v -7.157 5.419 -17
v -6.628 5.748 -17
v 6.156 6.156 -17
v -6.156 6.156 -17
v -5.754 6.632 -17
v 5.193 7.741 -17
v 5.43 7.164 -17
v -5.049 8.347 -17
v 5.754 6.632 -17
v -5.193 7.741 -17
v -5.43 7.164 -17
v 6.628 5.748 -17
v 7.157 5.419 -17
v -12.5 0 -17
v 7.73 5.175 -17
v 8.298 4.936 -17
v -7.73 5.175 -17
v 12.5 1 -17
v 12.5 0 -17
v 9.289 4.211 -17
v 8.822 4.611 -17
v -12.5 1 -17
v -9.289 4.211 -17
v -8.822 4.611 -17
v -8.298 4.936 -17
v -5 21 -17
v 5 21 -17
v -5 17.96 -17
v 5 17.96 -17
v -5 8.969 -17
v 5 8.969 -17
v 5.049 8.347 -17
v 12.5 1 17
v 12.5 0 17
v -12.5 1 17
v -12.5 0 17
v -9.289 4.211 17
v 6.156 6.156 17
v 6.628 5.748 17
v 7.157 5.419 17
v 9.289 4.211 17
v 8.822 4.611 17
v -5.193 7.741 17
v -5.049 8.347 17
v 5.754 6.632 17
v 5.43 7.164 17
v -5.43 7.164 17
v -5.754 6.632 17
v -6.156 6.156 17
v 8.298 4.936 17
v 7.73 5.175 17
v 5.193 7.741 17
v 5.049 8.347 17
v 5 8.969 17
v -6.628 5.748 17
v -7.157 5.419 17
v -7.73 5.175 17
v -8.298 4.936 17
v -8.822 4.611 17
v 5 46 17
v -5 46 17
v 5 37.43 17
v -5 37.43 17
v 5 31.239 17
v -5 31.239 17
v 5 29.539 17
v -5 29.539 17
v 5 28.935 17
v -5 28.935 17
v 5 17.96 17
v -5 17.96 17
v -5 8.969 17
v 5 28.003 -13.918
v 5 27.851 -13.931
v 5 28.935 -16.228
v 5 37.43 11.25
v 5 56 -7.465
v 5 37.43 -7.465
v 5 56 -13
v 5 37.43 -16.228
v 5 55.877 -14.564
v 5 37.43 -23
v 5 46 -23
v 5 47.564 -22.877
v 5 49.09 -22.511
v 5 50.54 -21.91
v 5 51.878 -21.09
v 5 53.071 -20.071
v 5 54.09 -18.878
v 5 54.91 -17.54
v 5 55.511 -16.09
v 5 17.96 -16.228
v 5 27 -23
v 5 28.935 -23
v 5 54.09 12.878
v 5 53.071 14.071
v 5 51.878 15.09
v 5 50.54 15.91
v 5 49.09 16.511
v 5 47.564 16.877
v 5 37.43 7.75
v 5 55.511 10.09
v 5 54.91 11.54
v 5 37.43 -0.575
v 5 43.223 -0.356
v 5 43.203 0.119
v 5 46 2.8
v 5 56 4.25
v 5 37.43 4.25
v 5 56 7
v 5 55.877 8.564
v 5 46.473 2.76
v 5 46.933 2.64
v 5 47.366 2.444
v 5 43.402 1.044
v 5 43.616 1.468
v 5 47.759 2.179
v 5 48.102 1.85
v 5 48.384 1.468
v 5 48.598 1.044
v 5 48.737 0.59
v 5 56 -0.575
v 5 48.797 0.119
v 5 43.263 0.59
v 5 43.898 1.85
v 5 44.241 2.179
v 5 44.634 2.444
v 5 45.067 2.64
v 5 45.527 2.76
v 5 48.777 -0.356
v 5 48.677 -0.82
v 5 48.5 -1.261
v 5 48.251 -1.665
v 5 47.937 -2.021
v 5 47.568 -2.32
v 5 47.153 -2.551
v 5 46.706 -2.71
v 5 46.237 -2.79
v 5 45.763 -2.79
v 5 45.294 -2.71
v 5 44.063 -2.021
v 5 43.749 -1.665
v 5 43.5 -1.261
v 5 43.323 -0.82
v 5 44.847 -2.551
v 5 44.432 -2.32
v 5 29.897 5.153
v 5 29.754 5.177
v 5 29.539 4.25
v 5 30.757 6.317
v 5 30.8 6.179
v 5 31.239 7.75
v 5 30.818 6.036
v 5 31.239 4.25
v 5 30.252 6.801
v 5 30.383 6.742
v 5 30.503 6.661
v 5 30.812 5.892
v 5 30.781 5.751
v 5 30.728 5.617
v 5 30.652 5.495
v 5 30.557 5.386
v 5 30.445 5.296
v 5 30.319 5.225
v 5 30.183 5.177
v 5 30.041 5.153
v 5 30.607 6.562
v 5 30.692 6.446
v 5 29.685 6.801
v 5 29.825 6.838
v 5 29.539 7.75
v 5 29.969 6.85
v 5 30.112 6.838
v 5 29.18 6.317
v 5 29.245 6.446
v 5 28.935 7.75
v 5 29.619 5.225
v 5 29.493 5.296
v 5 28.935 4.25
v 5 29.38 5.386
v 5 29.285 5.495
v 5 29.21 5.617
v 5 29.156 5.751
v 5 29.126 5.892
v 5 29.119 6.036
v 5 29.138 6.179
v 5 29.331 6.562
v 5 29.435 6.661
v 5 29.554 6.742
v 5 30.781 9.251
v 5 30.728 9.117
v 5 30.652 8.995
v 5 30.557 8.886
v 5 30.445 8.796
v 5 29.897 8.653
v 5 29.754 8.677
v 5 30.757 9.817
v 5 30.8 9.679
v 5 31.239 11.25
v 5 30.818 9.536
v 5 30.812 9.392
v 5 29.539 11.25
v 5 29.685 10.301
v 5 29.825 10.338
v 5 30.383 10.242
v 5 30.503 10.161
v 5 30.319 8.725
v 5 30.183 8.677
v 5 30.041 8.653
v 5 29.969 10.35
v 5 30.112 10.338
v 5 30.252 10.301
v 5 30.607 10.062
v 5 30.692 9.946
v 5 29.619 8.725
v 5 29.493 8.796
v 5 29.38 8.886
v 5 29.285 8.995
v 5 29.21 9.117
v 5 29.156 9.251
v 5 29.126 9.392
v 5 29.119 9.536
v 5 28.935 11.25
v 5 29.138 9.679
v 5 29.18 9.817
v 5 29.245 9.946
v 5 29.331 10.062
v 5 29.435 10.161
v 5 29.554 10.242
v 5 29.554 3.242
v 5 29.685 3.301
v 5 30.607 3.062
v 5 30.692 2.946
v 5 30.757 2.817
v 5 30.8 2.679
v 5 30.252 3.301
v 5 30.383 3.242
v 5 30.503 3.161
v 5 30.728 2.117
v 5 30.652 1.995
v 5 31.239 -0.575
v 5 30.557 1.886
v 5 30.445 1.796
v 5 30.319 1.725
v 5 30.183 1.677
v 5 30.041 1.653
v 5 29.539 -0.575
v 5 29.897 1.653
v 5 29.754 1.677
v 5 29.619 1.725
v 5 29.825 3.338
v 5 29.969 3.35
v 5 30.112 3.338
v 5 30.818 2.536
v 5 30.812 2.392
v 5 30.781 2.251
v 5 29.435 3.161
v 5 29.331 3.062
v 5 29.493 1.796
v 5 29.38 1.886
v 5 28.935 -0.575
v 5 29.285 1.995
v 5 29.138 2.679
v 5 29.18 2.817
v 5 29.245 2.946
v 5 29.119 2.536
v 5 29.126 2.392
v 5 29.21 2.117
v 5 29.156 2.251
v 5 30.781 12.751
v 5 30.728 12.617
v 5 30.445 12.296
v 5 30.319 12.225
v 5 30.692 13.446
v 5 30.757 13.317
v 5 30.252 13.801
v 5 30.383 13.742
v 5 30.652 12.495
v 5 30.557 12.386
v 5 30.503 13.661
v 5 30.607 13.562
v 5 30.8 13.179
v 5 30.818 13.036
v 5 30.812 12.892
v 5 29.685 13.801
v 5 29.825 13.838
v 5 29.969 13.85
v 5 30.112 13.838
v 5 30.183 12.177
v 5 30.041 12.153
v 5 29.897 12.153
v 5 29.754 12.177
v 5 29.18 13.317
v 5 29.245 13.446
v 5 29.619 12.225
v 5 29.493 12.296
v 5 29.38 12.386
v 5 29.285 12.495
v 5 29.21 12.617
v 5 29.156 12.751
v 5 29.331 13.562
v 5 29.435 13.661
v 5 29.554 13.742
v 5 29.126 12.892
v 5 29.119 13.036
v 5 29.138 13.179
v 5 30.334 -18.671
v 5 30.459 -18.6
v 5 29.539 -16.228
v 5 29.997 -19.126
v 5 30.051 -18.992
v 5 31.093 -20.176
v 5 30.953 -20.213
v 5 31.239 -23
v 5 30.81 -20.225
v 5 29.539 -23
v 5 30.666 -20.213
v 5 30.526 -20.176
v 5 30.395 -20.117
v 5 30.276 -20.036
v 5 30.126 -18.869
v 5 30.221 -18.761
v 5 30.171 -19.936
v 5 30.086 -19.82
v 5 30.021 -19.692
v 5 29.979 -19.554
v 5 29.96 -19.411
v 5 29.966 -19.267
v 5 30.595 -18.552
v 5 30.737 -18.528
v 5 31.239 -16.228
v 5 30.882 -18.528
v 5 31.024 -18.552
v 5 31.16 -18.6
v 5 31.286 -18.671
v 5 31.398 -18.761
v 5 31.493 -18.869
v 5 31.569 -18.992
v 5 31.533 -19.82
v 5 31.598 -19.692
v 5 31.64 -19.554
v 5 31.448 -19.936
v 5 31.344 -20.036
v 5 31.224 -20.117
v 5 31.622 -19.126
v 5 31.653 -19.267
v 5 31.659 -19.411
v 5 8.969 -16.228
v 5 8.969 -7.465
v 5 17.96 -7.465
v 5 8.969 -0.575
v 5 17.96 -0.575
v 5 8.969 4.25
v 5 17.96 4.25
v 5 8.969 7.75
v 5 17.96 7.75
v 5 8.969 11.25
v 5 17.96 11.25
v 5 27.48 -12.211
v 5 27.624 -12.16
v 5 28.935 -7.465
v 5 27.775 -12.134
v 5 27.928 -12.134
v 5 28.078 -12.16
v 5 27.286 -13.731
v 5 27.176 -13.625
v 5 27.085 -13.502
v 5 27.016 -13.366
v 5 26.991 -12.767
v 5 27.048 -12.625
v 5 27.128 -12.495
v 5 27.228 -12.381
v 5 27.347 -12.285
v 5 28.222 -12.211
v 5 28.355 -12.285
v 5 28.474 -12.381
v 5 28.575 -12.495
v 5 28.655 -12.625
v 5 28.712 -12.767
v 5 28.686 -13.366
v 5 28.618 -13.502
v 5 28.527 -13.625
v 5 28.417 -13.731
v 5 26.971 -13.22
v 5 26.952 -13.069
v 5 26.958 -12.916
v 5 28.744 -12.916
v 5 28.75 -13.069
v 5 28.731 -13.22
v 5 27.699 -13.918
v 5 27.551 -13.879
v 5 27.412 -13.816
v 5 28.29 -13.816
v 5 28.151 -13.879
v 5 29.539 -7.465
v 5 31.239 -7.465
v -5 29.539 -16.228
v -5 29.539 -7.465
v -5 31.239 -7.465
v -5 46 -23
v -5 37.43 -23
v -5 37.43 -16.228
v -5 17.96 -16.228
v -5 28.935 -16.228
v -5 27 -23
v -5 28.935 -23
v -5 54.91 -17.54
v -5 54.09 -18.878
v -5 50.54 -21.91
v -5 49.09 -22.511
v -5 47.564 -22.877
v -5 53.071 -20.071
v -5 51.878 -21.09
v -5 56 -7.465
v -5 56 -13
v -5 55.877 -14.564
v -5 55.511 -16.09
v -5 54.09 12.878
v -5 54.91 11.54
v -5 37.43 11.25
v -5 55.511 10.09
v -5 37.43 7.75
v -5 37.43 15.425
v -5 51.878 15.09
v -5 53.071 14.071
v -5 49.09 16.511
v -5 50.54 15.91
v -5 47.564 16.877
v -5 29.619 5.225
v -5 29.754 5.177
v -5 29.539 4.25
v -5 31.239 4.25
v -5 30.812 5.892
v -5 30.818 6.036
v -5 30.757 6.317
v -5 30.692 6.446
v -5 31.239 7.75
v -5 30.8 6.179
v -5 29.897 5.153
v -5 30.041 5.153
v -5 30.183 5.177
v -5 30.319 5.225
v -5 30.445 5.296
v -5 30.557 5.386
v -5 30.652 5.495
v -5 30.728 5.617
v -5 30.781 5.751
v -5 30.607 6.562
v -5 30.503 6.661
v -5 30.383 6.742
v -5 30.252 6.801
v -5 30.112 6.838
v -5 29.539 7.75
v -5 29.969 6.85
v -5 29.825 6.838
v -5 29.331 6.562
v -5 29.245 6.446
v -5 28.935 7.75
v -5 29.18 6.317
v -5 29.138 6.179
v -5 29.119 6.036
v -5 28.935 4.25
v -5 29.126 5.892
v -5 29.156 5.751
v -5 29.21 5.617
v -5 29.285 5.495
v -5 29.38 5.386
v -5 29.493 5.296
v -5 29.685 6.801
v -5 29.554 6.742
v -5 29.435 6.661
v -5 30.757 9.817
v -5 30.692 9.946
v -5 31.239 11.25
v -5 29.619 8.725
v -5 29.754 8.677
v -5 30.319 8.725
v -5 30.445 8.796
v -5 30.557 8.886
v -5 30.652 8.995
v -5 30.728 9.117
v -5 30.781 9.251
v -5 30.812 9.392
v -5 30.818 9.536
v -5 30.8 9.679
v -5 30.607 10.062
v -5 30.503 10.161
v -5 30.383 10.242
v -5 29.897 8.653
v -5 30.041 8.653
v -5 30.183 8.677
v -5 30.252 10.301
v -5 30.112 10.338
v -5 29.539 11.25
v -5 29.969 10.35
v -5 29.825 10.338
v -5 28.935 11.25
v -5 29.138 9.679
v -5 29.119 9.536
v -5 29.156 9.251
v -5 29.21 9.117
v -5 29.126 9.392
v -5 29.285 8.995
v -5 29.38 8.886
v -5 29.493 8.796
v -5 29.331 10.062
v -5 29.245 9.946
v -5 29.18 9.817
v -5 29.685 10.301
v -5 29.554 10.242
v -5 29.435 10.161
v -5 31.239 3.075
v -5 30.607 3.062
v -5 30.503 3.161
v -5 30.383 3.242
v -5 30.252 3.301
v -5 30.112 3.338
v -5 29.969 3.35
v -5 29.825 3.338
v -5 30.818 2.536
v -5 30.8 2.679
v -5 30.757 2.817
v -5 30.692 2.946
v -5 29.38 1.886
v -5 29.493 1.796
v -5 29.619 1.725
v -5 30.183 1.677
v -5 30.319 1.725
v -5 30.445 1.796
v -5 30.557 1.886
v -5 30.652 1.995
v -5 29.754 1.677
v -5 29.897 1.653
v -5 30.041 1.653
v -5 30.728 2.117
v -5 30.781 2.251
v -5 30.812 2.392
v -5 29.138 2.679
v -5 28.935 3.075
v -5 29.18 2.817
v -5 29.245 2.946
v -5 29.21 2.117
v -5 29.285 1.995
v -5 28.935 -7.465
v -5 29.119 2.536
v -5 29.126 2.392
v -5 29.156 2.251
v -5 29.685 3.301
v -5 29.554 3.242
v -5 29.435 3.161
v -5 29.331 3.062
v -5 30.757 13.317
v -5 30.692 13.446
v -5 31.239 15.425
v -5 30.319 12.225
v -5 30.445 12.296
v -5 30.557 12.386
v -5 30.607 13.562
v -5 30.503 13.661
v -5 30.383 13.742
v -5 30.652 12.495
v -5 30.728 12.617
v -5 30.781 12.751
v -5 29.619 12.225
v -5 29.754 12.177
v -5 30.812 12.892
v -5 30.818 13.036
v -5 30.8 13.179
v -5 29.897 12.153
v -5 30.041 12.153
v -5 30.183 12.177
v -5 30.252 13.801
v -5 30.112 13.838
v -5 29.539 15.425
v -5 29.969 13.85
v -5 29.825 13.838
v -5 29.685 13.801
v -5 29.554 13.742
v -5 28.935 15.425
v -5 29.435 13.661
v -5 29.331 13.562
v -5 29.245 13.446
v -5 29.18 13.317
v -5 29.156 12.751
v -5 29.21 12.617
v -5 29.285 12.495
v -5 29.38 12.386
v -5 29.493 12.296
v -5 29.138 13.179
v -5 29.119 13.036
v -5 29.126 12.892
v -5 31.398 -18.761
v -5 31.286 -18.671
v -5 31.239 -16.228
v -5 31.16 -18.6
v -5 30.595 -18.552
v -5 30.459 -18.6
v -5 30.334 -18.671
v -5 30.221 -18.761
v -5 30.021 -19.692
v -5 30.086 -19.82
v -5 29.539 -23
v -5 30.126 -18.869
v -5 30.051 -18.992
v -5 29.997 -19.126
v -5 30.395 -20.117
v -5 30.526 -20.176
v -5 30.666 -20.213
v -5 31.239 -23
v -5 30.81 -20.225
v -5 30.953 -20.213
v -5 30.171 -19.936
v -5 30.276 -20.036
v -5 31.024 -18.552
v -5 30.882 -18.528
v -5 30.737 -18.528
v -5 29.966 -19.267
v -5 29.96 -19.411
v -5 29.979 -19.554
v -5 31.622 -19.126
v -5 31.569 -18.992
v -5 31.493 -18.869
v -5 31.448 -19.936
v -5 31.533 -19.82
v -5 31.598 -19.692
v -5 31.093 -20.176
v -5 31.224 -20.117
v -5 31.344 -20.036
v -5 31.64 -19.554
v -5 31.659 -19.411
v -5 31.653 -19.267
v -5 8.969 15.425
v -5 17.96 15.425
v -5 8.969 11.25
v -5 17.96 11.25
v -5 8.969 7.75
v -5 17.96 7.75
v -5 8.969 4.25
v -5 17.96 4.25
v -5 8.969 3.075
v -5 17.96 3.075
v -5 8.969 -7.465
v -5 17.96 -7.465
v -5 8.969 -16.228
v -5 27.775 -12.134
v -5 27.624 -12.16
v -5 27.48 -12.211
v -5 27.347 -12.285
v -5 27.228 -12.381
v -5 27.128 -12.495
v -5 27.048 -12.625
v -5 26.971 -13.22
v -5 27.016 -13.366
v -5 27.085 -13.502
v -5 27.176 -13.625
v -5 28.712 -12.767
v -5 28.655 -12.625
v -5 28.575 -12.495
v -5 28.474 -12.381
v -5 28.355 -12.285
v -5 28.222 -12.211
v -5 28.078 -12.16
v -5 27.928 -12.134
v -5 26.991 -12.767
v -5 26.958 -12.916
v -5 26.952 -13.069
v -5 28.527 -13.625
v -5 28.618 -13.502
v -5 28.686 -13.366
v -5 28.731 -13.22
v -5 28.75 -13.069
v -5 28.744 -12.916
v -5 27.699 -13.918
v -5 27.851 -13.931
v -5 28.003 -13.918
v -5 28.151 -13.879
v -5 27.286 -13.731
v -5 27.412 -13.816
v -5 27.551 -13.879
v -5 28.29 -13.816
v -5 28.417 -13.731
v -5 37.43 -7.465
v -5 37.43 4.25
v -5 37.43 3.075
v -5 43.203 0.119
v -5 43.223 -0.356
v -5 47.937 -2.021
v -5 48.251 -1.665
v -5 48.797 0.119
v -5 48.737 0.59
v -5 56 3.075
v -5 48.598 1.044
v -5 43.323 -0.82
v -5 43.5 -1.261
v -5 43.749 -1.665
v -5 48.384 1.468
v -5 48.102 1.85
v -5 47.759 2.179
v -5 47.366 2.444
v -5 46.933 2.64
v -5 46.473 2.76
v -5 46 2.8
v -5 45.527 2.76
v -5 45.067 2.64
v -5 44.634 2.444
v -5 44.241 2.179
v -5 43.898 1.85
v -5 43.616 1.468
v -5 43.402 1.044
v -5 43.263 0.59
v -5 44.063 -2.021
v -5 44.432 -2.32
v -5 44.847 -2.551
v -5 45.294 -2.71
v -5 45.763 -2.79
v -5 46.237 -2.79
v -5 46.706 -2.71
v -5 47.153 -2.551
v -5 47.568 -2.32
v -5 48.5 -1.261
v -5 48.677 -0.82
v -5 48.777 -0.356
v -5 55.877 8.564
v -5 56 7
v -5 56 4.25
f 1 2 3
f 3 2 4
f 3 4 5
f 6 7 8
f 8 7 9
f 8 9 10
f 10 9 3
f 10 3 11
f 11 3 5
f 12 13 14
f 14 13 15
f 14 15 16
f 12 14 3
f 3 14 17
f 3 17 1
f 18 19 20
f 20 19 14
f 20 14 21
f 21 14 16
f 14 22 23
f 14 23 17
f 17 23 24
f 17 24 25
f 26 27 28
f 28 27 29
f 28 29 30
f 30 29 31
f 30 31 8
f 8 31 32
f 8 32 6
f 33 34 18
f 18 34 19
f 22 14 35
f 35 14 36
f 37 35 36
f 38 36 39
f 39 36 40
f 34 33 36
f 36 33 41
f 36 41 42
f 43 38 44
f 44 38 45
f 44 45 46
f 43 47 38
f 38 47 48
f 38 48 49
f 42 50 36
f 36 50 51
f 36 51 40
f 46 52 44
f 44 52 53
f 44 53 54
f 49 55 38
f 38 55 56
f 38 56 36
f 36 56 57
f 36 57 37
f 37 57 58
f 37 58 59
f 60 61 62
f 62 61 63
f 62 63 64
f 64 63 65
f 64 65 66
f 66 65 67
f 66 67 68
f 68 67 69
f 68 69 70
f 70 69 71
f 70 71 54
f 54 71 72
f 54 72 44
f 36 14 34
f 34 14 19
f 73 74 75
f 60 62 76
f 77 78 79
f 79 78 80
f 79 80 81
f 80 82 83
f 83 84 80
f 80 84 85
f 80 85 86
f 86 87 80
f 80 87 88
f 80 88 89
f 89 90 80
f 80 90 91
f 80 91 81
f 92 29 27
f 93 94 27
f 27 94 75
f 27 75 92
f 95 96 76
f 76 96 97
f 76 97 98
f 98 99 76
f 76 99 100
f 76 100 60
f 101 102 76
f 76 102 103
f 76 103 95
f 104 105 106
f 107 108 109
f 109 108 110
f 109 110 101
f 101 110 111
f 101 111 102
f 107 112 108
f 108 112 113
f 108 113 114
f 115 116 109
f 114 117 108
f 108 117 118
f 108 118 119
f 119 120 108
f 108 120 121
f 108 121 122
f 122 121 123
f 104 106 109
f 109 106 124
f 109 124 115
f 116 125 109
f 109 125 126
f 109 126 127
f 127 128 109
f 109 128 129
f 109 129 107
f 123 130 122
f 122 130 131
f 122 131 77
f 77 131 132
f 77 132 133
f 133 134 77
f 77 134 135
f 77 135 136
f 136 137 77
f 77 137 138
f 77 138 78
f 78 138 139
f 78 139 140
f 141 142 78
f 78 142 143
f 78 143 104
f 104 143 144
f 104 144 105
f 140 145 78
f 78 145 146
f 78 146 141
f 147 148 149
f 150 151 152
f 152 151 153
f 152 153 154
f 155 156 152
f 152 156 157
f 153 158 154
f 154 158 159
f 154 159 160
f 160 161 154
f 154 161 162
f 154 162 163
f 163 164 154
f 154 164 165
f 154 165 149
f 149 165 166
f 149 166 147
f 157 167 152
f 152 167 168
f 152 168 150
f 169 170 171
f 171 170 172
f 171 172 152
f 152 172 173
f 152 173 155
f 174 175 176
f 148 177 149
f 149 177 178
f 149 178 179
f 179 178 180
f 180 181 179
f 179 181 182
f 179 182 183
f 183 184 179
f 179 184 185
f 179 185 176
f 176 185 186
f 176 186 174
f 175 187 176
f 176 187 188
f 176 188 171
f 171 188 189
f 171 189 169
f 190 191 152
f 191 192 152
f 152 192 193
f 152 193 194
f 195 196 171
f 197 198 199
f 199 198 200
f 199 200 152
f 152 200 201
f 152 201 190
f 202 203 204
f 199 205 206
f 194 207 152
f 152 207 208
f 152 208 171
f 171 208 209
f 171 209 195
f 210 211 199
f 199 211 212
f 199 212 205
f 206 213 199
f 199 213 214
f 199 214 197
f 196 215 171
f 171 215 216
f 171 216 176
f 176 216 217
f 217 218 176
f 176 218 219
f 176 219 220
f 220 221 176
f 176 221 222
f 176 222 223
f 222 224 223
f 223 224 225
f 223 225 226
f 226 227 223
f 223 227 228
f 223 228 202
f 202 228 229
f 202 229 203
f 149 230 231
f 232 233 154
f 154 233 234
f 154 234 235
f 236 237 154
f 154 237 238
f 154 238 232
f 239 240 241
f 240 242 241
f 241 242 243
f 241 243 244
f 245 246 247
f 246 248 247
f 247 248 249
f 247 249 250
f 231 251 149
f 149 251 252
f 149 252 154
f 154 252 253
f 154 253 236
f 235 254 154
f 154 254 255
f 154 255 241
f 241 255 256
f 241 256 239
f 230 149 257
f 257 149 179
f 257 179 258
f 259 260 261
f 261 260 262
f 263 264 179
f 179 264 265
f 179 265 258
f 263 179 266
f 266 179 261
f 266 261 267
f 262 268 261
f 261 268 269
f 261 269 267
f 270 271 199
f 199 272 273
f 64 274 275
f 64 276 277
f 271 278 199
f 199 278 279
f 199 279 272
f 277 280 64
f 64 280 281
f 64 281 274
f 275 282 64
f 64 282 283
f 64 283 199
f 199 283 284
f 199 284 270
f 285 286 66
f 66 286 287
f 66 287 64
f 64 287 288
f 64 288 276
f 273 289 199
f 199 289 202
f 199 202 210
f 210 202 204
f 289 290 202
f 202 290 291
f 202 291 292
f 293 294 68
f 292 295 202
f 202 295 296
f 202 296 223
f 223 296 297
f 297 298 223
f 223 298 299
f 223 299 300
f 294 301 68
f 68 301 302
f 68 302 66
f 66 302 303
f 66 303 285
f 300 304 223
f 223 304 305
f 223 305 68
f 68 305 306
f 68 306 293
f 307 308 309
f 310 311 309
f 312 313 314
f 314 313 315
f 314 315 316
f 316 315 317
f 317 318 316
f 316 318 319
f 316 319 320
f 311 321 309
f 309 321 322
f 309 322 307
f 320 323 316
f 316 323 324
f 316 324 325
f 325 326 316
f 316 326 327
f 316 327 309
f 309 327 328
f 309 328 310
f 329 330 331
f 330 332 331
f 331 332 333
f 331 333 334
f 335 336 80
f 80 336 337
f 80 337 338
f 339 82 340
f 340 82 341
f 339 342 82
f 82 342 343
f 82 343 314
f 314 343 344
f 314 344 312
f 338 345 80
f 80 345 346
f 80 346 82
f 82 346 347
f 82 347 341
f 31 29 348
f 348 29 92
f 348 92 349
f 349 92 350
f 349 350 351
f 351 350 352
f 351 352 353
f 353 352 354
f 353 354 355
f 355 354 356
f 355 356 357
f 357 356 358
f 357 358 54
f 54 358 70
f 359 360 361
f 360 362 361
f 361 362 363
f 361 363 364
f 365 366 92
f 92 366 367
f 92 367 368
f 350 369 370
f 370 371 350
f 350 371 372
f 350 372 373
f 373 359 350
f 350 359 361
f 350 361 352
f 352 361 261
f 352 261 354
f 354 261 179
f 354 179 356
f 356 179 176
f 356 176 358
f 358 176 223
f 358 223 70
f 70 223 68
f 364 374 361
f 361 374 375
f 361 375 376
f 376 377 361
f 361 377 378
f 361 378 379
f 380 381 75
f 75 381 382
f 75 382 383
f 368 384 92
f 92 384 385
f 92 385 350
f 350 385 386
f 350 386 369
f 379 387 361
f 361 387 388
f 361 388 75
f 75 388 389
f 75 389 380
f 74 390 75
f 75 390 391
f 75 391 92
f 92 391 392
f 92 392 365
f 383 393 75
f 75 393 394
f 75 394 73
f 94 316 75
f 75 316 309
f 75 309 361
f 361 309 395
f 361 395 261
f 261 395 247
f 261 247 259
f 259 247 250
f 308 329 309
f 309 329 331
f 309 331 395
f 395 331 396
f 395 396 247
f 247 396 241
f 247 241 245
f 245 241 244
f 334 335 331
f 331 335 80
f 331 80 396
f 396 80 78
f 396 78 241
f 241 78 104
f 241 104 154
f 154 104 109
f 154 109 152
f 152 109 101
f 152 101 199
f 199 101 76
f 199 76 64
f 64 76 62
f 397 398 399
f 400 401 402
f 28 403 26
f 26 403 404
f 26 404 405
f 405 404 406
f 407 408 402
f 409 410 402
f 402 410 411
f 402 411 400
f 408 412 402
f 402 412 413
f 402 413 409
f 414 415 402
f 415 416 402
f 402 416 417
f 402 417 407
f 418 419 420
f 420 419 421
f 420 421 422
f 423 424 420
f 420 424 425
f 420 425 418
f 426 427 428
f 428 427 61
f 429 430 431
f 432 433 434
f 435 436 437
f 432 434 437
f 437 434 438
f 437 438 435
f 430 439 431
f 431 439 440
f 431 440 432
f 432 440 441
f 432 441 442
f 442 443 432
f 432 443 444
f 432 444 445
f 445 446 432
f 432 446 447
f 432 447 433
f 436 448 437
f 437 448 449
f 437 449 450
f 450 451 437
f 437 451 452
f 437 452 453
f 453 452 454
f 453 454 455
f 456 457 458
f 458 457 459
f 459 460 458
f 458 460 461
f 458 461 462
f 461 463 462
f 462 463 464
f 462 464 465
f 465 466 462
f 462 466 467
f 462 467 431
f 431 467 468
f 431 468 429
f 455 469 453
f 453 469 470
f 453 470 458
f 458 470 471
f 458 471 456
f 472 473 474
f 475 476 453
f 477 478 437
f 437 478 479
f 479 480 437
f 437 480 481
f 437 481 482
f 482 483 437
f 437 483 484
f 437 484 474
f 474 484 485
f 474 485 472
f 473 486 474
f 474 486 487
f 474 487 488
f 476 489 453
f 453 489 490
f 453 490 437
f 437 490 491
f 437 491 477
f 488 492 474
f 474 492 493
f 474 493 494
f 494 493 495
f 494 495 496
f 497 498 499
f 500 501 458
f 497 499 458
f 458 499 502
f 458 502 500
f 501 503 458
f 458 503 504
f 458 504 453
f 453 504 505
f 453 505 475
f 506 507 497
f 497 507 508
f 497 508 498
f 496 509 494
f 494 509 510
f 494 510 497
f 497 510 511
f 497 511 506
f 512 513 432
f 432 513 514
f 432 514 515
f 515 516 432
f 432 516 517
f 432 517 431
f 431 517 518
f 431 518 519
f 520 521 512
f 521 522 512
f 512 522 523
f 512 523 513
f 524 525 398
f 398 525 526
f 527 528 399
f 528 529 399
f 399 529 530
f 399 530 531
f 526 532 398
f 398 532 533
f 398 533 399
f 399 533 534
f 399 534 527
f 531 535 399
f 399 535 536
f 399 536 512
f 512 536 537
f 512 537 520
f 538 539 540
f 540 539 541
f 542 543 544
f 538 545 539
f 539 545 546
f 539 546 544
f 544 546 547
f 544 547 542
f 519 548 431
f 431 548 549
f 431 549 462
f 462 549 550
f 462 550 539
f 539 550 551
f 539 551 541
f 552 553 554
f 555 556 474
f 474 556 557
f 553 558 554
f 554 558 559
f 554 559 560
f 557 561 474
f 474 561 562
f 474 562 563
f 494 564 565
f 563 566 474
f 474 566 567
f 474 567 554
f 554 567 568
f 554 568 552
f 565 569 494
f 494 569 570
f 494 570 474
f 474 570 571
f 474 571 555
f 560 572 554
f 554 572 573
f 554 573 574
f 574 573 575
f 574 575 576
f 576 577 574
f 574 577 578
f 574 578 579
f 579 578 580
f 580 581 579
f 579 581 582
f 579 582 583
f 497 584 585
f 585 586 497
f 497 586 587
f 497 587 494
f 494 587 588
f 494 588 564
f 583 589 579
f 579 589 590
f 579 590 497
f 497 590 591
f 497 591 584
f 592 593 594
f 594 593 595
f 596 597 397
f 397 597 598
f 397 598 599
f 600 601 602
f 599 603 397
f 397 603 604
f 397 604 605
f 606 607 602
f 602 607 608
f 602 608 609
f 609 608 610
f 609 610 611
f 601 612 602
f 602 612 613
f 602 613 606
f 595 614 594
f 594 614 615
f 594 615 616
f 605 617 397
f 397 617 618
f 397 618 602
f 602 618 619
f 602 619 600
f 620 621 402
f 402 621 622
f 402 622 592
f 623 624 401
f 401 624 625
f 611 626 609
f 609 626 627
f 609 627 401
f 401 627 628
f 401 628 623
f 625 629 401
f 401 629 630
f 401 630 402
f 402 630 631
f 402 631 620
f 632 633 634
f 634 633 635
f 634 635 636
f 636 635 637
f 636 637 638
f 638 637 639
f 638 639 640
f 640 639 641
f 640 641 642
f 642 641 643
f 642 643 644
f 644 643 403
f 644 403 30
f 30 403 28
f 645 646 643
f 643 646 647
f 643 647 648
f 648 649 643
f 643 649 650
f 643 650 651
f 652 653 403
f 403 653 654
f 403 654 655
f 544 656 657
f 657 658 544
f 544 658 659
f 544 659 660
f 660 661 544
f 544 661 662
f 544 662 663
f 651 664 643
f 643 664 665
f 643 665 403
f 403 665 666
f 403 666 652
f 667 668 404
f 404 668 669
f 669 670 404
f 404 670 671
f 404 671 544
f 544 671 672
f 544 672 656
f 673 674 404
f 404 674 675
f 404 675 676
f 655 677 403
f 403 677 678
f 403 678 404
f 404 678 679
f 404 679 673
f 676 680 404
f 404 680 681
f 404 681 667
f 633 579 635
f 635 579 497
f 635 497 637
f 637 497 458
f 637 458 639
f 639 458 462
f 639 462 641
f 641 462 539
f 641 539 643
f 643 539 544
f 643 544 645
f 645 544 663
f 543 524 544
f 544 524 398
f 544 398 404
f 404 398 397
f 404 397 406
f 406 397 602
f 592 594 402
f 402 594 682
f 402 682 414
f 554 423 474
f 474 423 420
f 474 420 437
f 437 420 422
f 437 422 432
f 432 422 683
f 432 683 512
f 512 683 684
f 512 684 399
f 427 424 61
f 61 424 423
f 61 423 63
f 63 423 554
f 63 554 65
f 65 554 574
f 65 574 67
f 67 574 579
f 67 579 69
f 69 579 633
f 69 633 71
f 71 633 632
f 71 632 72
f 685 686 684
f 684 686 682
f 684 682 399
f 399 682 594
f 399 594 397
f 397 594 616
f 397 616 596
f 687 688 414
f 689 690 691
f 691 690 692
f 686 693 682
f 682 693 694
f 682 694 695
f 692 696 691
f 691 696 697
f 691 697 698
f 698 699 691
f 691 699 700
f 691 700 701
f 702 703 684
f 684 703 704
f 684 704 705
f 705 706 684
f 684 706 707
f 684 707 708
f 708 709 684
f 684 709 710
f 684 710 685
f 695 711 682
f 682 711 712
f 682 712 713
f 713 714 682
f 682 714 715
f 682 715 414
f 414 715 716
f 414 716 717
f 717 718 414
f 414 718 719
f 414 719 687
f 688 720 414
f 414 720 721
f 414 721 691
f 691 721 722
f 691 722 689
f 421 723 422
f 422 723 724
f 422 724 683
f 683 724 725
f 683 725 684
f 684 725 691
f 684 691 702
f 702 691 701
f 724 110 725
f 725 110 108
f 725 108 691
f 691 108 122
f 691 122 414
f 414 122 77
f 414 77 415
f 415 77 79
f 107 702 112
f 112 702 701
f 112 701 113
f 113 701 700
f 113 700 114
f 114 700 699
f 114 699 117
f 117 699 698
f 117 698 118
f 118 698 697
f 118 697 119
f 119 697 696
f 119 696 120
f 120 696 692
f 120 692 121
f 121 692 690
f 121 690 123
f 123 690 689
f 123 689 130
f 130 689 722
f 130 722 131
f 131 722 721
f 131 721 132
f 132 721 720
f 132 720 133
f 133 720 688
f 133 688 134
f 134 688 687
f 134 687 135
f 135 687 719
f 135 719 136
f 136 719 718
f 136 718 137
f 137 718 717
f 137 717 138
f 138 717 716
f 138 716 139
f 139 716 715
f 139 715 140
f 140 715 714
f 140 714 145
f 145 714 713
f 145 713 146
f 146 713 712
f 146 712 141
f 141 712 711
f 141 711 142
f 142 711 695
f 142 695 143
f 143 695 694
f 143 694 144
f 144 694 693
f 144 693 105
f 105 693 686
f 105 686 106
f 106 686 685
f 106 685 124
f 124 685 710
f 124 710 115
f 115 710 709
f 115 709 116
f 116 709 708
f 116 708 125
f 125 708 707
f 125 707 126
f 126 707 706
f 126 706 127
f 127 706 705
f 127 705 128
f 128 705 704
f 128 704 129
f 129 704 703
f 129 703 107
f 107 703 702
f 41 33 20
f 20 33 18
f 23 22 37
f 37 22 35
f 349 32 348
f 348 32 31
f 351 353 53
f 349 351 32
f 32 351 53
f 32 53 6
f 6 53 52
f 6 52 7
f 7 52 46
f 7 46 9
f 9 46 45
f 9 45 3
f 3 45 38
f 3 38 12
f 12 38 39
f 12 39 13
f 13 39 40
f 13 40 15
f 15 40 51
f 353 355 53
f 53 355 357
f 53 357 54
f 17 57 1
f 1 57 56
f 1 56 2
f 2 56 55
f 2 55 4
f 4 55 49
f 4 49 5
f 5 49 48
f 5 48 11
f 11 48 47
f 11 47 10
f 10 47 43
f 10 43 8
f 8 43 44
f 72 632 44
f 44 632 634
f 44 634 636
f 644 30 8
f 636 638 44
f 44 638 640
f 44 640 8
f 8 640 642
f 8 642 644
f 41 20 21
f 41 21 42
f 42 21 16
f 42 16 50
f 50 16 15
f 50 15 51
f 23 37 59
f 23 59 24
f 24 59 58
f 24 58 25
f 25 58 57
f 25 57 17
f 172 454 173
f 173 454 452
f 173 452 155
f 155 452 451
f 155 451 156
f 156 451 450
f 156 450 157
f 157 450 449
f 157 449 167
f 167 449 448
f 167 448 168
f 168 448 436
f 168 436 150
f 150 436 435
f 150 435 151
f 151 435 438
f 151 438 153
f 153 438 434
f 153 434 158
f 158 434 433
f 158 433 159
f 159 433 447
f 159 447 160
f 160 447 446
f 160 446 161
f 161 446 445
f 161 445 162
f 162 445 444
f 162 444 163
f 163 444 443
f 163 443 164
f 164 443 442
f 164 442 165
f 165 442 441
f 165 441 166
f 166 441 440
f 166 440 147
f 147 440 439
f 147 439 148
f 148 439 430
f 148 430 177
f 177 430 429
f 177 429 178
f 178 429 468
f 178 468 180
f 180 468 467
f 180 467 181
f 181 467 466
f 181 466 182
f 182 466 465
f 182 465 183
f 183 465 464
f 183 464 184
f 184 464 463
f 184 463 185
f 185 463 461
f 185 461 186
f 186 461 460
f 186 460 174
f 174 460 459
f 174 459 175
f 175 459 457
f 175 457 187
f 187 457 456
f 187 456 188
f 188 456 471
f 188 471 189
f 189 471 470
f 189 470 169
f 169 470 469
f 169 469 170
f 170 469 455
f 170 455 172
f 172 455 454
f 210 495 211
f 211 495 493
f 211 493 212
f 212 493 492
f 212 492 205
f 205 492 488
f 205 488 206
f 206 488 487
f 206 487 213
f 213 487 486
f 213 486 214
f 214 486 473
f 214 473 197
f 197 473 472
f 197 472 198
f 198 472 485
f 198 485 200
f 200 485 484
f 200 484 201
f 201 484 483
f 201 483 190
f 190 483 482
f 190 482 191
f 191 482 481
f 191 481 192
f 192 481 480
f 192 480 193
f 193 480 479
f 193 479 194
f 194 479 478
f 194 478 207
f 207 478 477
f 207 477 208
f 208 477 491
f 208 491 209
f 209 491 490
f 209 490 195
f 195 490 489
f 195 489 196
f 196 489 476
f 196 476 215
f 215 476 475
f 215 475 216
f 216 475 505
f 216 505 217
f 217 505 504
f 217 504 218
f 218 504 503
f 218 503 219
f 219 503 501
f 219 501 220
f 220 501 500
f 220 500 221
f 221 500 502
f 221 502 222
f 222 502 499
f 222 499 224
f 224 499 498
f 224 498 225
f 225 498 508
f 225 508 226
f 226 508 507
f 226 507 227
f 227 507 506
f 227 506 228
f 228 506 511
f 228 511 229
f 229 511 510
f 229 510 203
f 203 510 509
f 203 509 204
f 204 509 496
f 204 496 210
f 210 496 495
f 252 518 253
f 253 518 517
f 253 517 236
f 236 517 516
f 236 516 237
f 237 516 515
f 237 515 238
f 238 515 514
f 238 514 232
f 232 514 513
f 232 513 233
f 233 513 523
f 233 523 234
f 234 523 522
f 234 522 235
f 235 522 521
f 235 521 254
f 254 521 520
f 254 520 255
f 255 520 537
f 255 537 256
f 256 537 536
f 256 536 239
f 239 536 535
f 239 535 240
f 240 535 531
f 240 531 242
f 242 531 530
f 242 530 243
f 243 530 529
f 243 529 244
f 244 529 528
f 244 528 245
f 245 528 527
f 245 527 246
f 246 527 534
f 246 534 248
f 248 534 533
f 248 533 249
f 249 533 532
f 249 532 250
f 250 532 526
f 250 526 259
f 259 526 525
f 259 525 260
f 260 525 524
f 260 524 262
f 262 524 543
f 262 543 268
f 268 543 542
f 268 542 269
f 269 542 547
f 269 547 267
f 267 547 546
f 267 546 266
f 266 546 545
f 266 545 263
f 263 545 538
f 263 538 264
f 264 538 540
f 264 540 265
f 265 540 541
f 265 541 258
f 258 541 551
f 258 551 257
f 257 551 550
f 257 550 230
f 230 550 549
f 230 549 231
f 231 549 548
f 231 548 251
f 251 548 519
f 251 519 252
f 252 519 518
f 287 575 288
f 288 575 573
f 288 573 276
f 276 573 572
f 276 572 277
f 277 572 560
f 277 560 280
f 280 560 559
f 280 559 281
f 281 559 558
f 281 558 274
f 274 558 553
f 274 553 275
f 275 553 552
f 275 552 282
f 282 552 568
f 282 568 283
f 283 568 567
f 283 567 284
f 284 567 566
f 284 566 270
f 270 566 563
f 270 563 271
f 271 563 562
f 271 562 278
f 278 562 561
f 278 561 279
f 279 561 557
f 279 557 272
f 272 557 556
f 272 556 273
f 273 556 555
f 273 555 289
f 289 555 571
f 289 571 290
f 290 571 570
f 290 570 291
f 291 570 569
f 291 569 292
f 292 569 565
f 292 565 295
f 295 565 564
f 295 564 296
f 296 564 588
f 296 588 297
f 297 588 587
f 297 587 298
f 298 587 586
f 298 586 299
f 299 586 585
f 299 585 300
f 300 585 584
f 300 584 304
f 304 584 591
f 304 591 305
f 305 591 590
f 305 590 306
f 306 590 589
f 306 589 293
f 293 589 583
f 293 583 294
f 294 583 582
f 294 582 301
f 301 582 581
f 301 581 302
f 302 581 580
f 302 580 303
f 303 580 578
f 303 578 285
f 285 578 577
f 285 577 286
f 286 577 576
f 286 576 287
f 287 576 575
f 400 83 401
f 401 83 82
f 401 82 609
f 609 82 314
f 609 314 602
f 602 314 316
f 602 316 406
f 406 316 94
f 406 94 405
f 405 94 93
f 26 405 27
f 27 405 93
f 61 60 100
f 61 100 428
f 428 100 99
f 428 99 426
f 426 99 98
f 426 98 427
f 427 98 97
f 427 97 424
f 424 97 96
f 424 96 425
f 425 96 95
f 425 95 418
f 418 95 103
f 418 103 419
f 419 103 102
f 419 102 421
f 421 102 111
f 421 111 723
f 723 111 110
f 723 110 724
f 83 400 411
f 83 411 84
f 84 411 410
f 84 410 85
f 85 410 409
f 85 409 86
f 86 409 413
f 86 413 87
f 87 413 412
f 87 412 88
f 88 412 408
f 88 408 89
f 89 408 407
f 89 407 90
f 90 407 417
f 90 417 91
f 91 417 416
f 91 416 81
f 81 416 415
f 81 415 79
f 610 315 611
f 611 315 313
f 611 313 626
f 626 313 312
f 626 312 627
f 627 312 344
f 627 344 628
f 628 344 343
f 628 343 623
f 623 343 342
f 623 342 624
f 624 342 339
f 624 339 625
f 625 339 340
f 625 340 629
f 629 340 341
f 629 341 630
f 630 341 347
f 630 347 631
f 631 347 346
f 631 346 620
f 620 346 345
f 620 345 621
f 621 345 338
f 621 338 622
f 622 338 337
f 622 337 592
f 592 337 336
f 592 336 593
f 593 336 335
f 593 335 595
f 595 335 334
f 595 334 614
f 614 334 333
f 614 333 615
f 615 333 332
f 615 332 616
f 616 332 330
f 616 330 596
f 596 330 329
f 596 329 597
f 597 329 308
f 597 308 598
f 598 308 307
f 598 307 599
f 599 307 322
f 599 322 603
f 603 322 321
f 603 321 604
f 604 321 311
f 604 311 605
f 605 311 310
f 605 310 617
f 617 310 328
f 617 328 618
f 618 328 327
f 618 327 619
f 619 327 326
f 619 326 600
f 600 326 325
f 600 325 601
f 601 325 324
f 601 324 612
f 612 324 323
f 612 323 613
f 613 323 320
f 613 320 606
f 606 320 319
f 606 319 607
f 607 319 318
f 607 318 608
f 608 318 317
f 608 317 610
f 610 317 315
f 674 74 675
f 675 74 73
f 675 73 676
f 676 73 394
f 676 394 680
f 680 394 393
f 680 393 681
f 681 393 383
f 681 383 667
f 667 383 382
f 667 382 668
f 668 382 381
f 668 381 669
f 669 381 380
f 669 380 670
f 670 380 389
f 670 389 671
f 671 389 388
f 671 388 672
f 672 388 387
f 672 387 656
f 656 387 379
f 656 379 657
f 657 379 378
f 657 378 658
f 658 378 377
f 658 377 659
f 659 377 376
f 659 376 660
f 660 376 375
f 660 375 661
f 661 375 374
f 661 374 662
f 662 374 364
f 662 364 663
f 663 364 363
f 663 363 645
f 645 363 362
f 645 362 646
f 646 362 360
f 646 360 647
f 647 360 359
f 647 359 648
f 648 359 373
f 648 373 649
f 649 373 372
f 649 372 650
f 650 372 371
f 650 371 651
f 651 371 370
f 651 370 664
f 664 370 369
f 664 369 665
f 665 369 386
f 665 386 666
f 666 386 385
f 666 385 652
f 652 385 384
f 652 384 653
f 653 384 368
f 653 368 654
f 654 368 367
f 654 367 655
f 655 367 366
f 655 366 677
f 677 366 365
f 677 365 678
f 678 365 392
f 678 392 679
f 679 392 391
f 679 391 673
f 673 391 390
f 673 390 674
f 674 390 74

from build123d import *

# Parameters (mm, degrees)
SKETCH1_W           = 25
SKETCH1_H           = 34
BOSS_EXTRUDE1_DEPTH = 5
SKETCH2_W           = 10
SKETCH2_H           = 34
BOSS_EXTRUDE2_DEPTH = 51
SKETCH3_R           = 2.8
CUT_EXTRUDE1_DEPTH  = 41
CHAMFER1_SIZE       = 4
FILLET1_R           = 4
FILLET2_R           = 4
SKETCH4_R           = 0.85
CUT_EXTRUDE2_DEPTH  = 41
SKETCH5_W           = 10
SKETCH5_H           = 20
BOSS_EXTRUDE3_DEPTH = 6
CHAMFER3_SIZE       = 15
FILLET4_R           = 10
SKETCH7_R           = 0.9
SKETCH7_R_2         = 0.85
CUT_EXTRUDE3_DEPTH  = 13


with BuildPart() as part:
    # Sketch1 → Boss-Extrude1 (new body)
    with BuildSketch(Plane(origin=(0, 0, 0), x_dir=(1, 0, 0), z_dir=(0, 1, 0))):
        Rectangle(SKETCH1_W, SKETCH1_H)
    extrude(amount=BOSS_EXTRUDE1_DEPTH)

    # Sketch2 → Boss-Extrude2 (add)
    with BuildSketch(Plane(origin=(0, 5, 0), x_dir=(1, 0, 0), z_dir=(0, 1, 0))):
        Rectangle(SKETCH2_W, SKETCH2_H)
    extrude(amount=BOSS_EXTRUDE2_DEPTH)

    # Sketch3 → Cut-Extrude1 (cut)
    with BuildSketch(Plane.ZY.offset(5)):
        with Locations((0, 46)):
            Circle(SKETCH3_R)
    extrude(amount=-CUT_EXTRUDE1_DEPTH, mode=Mode.SUBTRACT)

    # Chamfer1
    chamfer1_edges = [part.edges().sort_by_distance(p)[0] for p in [
        (-12.5, 5, 0),
        (12.5, 5, 0),
    ]]
    chamfer(chamfer1_edges, length=CHAMFER1_SIZE)

    # Fillet1
    # the kernel refuses this fillet: 4 mm, written as the material it adds along each edge
    with BuildSketch(Plane(origin=(5, 5, 17), x_dir=(1, 0, 0), z_dir=(0, 0, -1)), Plane(origin=(-5, 5, -17), x_dir=(-1, 0, 0), z_dir=(0, 0, 1))) as fillet1_piece_1:
        with BuildLine():
            CenterArc((4, -3.968626967), FILLET1_R, 97.180755781, 82.819244219)
            Line((0, -3.968626967), (-0.08, -3.968626967))
            Line((-0.08, -3.968626967), (-0.08, 0))
            Line((-0.08, 0), (0, 0.08))
            ThreePointArc((0, 0.08), (1.75, 0.08), (3.49, 0.079372539))
            Line((3.49, 0.079372539), (3.5, 0))
        make_face()
    extrude(amount=34)

    # Fillet2
    fillet2_edges = [part.edges().sort_by_distance(p)[0] for p in [
        (8.5, 5, 0),
        (-8.5, 5, 0),
    ]]
    fillet(fillet2_edges, radius=FILLET2_R)

    # Sketch4 → Cut-Extrude2 (cut)
    with BuildSketch(Plane.ZY.offset(5)):
        with Locations((6, 29.968626967)):
            Circle(SKETCH4_R)
        with Locations((13, 29.968626967)):
            Circle(SKETCH4_R)
        with Locations((2.5, 29.968626967)):
            Circle(SKETCH4_R)
        with Locations((9.5, 29.968626967)):
            Circle(SKETCH4_R)
    extrude(amount=-CUT_EXTRUDE2_DEPTH, mode=Mode.SUBTRACT)

    # Sketch5 → Boss-Extrude3 (add)
    with BuildSketch(Plane(origin=(0, 0, -17), x_dir=(-1, 0, 0), z_dir=(0, 0, -1))):
        with Locations((0, 46)):
            Rectangle(SKETCH5_W, SKETCH5_H)
    extrude(amount=BOSS_EXTRUDE3_DEPTH)

    # Chamfer3
    # the kernel refuses this chamfer: 15 mm, written as the material it adds along each edge
    with BuildSketch(Plane(origin=(-5, 36, -17), x_dir=(0, -0.9996219169112968, 0.02749587661058632), z_dir=(1, 0, 0))) as chamfer3_piece_1_section:
        Polygon((CHAMFER3_SIZE * 0.999621916911, CHAMFER3_SIZE * 0.0274958766106), (-CHAMFER3_SIZE * 0.0274958766106, CHAMFER3_SIZE * 0.999621916911), (0, 0), align=None)
    chamfer3_piece_1 = extrude(amount=10, mode=Mode.PRIVATE)
    chamfer3_piece_1 = split(chamfer3_piece_1, bisect_by=Plane(origin=(0, 29.791642651, -23), z_dir=(0, 0, 1)), keep=Keep.TOP, mode=Mode.PRIVATE)
    add(chamfer3_piece_1)

    # Fillet4
    fillet4_edges = [part.edges().sort_by_distance(p)[0] for p in [
        (0, 56, 17),
        (0, 56, -23),
    ]]
    fillet(fillet4_edges, radius=FILLET4_R)

    # Sketch7 → Cut-Extrude3 (cut)
    with BuildSketch(Plane(origin=(5, 0, 0), x_dir=(0, 0, -1), z_dir=(1, 0, 0))):
        with Locations((13.030614343, 27.851199121)):
            Circle(SKETCH7_R)
        with Locations((19.374768852, 30.809526953)):
            Circle(SKETCH7_R_2)
    extrude(amount=-CUT_EXTRUDE3_DEPTH, mode=Mode.SUBTRACT)


solid = part.part
